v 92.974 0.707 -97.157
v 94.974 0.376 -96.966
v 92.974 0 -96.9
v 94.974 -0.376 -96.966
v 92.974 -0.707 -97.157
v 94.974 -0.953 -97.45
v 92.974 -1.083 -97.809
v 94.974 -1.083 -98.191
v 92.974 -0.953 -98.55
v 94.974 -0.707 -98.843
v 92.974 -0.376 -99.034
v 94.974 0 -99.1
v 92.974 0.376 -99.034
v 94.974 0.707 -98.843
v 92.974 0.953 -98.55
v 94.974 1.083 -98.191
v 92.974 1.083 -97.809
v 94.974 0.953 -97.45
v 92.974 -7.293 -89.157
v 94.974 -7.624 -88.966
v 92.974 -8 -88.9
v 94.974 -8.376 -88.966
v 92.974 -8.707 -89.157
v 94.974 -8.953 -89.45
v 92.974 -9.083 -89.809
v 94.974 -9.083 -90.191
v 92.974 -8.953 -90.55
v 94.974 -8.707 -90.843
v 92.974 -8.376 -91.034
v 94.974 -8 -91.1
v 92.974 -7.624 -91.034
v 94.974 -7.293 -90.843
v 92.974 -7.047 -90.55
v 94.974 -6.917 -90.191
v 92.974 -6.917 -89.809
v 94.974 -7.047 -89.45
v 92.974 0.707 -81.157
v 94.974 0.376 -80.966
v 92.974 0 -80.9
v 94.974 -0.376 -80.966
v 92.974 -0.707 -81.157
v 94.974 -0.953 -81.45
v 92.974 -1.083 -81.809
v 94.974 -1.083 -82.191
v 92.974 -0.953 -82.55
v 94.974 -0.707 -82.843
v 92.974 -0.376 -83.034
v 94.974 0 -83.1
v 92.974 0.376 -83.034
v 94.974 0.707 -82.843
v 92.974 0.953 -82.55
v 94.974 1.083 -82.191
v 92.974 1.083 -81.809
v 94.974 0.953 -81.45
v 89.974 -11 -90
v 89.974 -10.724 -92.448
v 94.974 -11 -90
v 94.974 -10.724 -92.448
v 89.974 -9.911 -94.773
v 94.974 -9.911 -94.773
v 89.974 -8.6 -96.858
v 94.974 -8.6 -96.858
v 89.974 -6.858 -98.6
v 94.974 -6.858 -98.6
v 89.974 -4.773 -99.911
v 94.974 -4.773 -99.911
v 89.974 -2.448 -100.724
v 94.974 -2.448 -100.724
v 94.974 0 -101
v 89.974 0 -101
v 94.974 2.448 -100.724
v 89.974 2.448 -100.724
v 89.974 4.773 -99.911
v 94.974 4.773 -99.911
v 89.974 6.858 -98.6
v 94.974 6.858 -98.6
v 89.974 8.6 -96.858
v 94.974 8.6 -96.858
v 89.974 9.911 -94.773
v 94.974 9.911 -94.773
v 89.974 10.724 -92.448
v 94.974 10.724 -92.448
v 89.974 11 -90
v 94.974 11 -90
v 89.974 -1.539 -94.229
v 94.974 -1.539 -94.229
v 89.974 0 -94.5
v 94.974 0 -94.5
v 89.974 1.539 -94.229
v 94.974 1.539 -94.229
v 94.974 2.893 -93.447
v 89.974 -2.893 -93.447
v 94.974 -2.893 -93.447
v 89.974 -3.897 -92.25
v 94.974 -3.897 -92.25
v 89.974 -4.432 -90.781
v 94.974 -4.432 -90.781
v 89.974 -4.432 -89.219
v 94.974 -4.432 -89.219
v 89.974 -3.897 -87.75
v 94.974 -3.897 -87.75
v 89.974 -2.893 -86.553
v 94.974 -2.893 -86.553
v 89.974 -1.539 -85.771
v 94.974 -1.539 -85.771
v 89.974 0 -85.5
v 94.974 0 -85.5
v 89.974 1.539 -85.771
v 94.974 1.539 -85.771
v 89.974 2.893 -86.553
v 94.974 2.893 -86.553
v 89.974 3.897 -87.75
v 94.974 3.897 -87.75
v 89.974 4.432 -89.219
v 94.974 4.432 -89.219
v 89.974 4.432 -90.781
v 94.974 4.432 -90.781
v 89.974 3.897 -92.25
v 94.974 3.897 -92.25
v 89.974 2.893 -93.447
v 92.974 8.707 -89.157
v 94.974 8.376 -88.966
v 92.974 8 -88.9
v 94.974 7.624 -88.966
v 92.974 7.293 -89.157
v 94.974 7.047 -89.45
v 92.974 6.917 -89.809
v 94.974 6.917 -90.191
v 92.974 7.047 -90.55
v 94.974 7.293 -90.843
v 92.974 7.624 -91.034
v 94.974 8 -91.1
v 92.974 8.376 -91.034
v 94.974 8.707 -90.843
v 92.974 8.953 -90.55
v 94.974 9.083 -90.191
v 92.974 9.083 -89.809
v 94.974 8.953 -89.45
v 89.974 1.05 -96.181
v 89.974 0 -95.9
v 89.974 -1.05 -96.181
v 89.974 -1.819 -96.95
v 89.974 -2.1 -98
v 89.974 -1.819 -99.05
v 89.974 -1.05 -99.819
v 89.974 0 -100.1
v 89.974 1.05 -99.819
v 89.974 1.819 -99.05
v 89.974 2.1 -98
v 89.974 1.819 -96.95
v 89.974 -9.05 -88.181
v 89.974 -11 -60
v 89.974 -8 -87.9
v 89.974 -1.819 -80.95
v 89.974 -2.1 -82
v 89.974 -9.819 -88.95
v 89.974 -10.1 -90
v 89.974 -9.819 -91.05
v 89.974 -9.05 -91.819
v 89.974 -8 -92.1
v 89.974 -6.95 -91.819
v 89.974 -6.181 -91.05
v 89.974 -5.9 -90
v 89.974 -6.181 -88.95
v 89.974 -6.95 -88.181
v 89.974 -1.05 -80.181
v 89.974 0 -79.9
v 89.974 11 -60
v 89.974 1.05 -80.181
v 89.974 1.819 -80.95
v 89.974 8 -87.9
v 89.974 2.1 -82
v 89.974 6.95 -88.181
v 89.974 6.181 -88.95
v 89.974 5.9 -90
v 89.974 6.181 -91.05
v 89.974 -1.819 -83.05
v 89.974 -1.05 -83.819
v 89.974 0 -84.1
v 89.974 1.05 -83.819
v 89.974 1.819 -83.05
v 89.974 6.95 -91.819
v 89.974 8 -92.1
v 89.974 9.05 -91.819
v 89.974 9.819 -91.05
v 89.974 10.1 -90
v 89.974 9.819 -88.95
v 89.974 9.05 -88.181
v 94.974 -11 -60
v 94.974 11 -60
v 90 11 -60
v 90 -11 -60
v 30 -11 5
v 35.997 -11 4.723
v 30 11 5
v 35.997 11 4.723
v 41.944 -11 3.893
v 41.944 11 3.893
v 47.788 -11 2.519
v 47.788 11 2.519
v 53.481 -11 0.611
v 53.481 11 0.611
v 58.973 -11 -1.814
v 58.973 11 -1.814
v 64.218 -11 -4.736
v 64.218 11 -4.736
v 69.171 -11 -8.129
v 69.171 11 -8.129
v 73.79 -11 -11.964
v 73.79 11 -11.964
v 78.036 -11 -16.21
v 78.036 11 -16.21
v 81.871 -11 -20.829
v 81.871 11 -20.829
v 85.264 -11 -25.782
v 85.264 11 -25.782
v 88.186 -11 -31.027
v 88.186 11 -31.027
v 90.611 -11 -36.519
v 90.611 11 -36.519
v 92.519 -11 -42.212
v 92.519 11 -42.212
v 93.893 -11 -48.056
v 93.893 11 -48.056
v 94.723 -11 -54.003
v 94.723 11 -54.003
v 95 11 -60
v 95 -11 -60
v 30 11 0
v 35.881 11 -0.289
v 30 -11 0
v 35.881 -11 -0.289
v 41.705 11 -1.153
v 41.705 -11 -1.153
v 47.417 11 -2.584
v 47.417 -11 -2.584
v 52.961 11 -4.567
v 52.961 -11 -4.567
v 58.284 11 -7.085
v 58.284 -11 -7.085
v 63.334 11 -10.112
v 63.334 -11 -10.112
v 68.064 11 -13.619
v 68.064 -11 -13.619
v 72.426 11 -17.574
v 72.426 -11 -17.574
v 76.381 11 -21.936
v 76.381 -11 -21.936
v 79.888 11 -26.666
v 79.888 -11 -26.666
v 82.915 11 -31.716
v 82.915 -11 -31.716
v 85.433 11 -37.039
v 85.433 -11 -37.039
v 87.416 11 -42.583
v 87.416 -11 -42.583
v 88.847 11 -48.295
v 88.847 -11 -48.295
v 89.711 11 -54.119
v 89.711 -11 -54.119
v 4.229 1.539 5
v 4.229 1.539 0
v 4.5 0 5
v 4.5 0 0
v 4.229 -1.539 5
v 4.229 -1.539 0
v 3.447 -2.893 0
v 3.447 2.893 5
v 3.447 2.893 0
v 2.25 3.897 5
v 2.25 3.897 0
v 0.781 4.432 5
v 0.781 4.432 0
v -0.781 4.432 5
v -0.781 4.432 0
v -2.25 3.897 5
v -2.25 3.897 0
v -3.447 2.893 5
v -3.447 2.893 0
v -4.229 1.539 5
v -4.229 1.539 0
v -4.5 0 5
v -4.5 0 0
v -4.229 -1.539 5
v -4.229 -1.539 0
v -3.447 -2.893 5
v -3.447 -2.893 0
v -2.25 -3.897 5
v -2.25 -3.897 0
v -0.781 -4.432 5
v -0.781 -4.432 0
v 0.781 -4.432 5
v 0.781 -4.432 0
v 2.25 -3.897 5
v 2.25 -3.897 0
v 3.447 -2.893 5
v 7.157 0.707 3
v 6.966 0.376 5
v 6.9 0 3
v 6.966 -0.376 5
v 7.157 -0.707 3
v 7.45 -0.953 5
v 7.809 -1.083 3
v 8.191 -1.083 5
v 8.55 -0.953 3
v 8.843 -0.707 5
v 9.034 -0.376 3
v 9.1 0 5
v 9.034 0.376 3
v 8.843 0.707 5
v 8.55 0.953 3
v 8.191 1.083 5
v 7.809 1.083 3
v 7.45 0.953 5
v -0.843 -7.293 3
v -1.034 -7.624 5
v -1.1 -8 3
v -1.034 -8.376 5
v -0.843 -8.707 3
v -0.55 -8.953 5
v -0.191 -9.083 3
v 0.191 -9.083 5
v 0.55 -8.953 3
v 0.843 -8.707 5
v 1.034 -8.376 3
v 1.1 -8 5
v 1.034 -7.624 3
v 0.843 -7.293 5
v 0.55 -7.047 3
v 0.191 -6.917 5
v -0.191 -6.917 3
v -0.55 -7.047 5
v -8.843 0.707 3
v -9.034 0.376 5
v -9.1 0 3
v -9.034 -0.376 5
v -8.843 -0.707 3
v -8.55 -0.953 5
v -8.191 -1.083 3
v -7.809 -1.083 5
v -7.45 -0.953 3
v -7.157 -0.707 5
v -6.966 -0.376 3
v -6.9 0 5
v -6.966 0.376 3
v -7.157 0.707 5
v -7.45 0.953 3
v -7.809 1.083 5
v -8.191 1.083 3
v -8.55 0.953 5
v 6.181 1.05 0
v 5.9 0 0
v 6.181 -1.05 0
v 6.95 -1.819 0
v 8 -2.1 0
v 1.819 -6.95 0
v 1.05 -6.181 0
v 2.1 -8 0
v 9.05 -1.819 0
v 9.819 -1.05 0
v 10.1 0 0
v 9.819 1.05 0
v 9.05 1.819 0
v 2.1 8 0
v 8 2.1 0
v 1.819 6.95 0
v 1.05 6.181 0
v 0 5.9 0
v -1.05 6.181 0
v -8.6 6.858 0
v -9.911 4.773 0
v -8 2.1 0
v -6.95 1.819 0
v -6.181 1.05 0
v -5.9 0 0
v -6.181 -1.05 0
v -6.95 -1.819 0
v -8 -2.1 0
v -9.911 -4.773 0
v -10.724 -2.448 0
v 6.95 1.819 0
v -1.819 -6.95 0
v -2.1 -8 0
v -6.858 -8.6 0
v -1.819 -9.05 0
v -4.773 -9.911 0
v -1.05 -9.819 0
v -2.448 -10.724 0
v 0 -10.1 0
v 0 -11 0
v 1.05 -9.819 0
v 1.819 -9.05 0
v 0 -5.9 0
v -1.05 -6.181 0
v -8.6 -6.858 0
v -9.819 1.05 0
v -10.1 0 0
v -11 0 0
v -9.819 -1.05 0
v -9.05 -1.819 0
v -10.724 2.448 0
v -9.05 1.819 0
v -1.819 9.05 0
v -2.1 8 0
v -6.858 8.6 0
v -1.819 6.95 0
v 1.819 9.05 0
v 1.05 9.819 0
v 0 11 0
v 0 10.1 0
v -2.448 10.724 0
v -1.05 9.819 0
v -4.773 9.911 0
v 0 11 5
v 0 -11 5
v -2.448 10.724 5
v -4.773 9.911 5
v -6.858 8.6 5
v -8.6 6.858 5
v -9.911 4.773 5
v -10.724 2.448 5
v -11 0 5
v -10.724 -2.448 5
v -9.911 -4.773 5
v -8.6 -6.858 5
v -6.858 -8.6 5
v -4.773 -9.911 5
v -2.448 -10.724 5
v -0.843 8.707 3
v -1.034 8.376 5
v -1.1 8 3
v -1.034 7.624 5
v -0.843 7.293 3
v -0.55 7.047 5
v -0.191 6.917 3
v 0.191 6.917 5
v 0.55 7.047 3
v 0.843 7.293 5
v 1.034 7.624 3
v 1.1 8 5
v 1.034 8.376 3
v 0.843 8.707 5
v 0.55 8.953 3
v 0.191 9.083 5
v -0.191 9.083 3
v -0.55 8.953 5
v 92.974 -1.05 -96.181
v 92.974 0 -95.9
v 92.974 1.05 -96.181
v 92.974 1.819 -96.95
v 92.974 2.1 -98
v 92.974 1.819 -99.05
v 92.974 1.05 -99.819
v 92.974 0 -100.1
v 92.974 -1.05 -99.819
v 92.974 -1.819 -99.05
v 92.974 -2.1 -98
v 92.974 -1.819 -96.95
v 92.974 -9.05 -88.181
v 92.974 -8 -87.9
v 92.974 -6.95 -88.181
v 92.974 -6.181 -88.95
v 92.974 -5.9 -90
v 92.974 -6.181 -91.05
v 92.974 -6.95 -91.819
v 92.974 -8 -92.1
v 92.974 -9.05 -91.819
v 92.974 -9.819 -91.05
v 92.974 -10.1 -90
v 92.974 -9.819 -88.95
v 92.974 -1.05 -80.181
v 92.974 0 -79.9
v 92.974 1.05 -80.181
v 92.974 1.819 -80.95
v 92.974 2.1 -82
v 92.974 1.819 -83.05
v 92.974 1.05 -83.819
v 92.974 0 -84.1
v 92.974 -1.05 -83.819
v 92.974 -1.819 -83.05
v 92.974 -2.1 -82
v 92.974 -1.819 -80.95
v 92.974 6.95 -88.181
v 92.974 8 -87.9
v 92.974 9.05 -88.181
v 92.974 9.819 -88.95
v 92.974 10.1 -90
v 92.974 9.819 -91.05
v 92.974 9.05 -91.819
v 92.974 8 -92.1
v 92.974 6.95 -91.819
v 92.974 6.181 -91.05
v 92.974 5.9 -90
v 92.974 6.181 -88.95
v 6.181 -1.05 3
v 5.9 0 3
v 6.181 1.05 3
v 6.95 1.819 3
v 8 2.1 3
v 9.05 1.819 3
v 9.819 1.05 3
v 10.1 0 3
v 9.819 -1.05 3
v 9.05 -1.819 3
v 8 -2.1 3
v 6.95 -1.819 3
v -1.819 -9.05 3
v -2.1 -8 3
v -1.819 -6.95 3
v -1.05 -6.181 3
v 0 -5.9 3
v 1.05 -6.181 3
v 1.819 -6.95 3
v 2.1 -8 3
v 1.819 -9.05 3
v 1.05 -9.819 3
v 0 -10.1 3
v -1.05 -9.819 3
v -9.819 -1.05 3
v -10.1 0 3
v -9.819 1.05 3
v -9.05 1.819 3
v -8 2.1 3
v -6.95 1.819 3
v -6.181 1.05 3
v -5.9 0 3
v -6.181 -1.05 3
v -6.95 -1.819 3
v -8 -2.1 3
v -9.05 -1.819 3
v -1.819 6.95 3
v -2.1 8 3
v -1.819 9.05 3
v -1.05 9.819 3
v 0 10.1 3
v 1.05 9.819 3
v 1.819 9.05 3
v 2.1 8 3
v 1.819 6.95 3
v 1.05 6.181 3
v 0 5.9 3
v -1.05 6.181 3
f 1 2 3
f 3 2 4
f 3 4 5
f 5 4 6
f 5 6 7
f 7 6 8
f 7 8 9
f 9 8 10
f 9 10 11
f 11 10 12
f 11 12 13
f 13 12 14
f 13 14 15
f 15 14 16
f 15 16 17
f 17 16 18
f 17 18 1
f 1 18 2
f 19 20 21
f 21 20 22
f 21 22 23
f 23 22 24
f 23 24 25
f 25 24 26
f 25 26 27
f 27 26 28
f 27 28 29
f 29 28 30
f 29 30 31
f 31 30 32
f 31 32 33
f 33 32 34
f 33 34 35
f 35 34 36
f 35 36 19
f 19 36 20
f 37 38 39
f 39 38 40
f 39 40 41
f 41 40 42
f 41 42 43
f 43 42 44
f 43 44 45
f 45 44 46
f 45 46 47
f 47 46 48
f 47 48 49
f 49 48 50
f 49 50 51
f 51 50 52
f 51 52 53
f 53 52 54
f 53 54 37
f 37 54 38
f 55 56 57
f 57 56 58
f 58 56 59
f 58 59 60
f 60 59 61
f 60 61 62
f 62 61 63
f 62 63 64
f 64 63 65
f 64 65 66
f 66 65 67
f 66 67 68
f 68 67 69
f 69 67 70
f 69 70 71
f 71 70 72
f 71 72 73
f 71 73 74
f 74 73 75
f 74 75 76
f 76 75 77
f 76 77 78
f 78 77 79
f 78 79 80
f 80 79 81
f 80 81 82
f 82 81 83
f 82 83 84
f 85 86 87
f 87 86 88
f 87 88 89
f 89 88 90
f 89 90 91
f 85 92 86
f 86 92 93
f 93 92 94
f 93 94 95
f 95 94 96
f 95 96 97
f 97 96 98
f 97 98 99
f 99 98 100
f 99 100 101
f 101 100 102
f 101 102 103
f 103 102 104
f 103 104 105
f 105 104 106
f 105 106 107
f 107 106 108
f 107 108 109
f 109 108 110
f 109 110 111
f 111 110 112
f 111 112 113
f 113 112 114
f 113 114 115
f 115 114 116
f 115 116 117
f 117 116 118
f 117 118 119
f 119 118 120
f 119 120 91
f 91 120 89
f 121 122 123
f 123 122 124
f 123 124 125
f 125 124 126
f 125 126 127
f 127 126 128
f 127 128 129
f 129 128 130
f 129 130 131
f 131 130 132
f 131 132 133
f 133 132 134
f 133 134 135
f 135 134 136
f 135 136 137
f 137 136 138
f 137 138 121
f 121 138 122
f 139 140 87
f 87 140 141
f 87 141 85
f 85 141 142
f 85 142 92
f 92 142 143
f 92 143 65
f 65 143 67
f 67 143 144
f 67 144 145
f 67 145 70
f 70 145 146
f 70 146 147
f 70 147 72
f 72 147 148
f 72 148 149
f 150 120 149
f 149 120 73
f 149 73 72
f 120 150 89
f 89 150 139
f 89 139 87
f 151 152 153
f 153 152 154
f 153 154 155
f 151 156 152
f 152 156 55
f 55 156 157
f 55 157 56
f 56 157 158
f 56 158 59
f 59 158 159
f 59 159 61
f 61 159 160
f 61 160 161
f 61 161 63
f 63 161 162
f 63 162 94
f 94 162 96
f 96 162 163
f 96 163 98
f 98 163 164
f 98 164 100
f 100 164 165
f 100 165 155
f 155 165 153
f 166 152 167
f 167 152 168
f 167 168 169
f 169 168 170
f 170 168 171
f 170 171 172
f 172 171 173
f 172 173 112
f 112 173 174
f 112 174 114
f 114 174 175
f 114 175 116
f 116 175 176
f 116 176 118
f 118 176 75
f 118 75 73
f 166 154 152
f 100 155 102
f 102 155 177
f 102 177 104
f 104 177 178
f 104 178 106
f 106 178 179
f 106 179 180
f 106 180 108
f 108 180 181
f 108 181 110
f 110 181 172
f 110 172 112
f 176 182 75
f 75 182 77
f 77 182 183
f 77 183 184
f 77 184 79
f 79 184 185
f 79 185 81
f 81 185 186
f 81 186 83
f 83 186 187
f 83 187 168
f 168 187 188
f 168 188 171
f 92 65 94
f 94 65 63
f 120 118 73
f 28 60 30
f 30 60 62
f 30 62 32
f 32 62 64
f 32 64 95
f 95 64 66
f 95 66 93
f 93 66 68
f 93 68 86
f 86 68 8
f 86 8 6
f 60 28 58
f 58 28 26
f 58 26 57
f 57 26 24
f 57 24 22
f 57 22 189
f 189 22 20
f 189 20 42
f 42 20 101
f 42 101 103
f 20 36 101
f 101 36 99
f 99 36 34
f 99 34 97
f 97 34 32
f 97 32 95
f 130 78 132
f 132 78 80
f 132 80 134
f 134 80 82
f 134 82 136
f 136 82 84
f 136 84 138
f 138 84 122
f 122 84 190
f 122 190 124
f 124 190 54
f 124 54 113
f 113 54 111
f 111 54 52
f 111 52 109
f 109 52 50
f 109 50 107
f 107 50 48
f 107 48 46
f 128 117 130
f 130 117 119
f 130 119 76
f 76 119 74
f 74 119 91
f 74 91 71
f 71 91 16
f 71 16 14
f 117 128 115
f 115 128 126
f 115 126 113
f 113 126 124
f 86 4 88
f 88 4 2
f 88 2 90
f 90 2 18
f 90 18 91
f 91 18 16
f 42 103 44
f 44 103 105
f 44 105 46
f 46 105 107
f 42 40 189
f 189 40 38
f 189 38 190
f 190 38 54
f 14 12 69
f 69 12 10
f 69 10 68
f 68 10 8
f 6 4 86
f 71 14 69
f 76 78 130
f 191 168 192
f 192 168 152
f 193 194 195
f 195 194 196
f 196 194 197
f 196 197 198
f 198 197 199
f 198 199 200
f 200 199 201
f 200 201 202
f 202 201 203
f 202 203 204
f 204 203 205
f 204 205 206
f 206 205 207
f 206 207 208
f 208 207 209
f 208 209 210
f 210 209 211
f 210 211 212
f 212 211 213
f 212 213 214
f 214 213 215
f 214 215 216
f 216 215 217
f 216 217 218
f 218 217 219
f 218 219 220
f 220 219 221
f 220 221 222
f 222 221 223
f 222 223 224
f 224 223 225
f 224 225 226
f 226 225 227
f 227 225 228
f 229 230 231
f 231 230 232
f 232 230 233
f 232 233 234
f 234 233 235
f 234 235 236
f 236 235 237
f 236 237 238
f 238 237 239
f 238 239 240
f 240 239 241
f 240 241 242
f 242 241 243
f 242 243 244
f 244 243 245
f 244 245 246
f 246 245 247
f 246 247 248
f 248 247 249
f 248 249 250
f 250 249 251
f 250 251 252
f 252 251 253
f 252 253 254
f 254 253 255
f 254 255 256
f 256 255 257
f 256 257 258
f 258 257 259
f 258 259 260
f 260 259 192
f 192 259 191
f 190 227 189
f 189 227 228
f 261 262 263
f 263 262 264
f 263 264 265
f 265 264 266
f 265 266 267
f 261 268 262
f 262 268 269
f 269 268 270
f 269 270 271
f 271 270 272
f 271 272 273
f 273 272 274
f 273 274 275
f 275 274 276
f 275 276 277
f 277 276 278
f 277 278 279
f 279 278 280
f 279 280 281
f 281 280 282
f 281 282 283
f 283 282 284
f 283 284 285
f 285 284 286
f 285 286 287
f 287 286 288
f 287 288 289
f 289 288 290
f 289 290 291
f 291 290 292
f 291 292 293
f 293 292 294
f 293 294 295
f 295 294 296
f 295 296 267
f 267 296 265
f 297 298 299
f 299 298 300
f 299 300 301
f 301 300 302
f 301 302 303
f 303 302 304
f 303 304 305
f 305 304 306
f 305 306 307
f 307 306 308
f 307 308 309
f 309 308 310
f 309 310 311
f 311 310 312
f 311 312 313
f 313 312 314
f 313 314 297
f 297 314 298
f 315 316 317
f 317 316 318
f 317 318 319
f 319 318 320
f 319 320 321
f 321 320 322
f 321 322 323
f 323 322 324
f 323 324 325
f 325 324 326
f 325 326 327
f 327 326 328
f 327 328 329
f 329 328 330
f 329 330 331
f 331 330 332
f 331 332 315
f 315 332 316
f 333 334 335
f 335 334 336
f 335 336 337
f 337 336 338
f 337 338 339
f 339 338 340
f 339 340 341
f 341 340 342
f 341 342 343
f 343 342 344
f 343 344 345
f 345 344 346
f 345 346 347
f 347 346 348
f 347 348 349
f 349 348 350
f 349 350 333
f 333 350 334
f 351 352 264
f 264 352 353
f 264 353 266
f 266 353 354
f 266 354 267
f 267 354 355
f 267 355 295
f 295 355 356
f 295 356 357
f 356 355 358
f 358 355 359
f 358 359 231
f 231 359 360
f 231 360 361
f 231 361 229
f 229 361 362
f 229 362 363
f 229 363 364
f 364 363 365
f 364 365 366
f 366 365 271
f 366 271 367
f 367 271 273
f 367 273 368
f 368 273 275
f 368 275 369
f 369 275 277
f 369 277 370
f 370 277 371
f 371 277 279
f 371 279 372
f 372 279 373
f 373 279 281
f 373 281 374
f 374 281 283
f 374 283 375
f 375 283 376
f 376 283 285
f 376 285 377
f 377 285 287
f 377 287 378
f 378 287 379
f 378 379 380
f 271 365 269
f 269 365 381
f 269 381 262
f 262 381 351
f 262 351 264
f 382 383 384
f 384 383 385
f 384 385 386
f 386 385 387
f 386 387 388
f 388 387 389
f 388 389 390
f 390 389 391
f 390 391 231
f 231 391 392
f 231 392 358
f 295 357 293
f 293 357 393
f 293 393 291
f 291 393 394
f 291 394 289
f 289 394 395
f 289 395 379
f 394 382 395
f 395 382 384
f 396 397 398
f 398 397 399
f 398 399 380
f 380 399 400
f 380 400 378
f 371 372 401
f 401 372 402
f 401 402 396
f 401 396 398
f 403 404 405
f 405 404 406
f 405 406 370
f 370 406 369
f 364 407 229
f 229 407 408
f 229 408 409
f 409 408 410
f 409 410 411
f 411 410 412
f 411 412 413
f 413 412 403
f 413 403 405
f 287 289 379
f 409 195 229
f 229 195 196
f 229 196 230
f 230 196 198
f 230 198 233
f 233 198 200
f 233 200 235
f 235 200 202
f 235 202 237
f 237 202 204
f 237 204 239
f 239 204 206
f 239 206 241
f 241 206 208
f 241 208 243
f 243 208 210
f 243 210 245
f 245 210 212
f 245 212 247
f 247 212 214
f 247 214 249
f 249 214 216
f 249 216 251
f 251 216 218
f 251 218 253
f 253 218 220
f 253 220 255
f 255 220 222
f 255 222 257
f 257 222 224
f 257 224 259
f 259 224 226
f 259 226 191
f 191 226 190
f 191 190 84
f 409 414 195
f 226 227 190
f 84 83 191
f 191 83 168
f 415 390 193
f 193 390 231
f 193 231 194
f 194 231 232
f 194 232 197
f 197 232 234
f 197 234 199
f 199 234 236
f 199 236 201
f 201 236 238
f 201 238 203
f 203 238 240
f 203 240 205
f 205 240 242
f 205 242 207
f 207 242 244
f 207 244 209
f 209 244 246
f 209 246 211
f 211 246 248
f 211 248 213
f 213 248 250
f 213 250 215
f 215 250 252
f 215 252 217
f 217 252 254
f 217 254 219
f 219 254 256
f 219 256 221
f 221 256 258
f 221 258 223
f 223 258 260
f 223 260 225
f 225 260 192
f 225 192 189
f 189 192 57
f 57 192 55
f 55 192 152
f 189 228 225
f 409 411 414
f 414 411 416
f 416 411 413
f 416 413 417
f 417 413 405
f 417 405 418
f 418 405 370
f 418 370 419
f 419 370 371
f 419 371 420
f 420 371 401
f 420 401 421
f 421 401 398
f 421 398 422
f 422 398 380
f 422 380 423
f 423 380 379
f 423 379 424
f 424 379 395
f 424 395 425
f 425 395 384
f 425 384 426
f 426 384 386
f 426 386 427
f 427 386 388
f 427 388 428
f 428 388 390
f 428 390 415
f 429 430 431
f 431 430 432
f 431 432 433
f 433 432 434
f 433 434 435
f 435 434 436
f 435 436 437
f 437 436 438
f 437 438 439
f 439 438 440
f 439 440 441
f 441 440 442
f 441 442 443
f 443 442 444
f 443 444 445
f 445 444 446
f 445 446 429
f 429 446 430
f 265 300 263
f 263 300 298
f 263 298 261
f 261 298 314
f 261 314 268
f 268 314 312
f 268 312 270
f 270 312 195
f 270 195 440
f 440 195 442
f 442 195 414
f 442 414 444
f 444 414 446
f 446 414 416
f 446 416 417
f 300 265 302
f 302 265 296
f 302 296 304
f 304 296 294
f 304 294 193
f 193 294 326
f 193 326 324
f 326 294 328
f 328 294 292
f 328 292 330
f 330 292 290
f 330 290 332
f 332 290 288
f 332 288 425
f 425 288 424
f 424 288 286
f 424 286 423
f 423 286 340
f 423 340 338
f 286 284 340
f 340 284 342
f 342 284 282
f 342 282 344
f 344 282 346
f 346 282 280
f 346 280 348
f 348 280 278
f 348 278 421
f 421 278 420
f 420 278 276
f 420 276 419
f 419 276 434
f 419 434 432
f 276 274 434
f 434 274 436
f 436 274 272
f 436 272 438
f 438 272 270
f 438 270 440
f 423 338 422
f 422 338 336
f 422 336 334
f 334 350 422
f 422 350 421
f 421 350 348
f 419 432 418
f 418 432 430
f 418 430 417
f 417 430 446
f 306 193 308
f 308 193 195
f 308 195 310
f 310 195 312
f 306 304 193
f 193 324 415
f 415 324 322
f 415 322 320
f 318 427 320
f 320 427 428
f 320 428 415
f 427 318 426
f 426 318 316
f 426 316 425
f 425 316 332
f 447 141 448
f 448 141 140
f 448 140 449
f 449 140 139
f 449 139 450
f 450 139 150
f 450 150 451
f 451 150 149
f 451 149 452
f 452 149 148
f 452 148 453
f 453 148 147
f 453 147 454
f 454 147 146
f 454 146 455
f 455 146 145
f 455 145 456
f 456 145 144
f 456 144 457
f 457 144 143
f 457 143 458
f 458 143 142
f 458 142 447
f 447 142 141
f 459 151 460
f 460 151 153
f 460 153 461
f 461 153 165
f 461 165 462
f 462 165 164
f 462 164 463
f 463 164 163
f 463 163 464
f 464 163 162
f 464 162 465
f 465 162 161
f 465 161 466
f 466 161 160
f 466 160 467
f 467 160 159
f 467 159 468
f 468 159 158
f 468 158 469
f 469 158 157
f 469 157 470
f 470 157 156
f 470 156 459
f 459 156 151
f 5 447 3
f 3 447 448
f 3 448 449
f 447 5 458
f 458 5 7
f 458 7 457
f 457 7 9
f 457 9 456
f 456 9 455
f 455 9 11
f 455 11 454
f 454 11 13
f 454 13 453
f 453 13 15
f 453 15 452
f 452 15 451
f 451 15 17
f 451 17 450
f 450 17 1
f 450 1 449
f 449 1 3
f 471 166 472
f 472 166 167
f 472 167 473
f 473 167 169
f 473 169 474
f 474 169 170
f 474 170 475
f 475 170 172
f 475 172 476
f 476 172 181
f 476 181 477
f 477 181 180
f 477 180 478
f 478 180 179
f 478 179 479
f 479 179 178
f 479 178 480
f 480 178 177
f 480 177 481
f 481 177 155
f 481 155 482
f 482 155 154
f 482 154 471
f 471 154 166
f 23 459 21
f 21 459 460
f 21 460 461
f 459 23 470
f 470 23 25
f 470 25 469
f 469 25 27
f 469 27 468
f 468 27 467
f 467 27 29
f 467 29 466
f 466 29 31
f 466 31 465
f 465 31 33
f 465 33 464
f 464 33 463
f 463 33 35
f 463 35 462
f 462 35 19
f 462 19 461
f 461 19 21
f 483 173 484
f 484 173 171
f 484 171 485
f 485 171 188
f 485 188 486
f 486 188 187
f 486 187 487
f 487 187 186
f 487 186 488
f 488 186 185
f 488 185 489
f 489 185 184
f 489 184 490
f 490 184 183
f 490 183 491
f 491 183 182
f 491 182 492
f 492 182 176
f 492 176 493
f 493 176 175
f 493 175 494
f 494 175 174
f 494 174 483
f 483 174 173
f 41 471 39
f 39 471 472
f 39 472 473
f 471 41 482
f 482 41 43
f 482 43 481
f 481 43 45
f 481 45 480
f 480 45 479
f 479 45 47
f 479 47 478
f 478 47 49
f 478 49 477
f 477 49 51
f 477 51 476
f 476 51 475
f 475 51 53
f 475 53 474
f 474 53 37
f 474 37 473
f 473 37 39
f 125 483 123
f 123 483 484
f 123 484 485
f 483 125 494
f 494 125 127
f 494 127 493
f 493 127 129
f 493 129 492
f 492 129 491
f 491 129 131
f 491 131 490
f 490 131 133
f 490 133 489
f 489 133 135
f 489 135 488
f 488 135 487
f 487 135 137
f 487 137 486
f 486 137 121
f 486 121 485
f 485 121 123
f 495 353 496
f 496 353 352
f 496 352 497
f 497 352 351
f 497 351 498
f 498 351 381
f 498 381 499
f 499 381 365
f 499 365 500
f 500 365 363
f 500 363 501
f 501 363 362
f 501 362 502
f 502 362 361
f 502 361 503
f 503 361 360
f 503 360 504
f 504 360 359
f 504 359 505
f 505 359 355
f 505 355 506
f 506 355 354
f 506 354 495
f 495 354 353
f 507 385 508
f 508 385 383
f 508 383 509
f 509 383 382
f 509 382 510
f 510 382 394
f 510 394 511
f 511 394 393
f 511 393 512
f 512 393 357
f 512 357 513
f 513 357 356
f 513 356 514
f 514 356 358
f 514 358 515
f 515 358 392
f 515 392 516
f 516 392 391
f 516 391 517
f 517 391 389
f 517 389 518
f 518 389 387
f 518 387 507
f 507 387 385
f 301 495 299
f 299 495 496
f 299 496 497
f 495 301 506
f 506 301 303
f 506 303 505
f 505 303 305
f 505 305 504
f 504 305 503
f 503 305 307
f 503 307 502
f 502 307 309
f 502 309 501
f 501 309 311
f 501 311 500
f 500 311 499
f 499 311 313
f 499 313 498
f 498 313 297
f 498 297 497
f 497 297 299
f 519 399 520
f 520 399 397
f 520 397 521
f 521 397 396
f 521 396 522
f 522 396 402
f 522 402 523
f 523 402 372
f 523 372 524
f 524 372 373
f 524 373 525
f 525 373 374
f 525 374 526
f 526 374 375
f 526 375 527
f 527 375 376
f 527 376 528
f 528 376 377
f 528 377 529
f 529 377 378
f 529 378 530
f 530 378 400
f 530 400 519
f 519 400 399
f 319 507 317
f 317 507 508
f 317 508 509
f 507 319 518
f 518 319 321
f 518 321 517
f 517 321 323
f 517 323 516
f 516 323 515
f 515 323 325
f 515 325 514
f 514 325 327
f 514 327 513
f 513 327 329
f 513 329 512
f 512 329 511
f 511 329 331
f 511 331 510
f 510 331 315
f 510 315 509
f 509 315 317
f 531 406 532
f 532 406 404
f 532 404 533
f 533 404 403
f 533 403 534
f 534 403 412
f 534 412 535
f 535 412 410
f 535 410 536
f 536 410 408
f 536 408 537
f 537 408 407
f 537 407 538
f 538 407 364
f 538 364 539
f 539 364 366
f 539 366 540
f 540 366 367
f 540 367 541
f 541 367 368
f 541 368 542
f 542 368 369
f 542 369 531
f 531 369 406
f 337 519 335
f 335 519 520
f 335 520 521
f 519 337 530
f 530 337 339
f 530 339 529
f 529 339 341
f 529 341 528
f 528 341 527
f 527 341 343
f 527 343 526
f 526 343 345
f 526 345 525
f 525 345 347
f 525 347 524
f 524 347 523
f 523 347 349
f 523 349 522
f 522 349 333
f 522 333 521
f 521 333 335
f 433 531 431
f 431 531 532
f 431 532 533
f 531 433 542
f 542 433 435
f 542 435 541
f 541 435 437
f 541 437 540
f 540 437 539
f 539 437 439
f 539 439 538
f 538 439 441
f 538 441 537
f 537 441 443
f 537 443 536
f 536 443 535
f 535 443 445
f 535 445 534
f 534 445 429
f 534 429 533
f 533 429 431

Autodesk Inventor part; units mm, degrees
ref_plane "YZ Plane" through (0, 0, 0) normal (1, 0, 0) x (0, 1, 0)
ref_plane "XZ Plane" through (0, 0, 0) normal (0, 1, 0) x (-1, 0, 0)
ref_plane "XY Plane" through (0, 0, 0) normal (0, 0, 1) x (1, 0, 0)
sketch "스케치1" plane through (0, 0, 0) normal (0, 0, 1) x (1, 0, 0)
  circle A0 centre (0, 0) radius 11
  circle A1 centre (0, -8) radius 1.1
  circle A2 centre (0, 0) radius 11
  circle A3 centre (8, 0) radius 1.1
  circle A4 centre (0, 0) radius 11
  circle A5 centre (0, 8) radius 1.1
  circle A6 centre (0, 0) radius 11
  circle A7 centre (-8, 0) radius 1.1
  arc A8 (-11, 0) -> (11, 0) centre (0, 0) ccw
  circle A9 centre (0, 0) radius 4.5
  line L0 (0, 11) -> (30, 11)
  line L1 (30, 11) -> (30, -11)
  line L2 (30, -11) -> (0, -11)
  arc A10 (0, -11) -> (0, 11) centre (0, 0) ccw
  dimension "d2" = 2.2
  dimension "d3" = 360
  dimension "d4" = 9
  dimension "d5" = 30
extrude "돌출1" add sketch "스케치1" along normal blind 5
sketch "스케치7" plane through (30, -11, 0) normal (1, 0, 0) x (0, 0, -1)
  line L0 (0, 0) -> (-5, 0) projected
  line L1 (0, 22) -> (-5, 22) projected
  line L2 (0, 0) -> (-5, 0)
  line L3 (-5, 0) -> (-5, 22)
  line L4 (-5, 22) -> (0, 22)
  line L5 (0, 22) -> (0, 0)
  point P0 (0, 11)
sketch "스케치8" plane through (0, -11, 0) normal (0, -1, 0) x (1, 0, 0)
  line L0 (30, 0) -> (0, 0) projected
  arc A0 (70, -40) -> (30, 0) centre (30, -40) ccw
  line L1 (30, -40) -> (70, -40) construction
  line L2 (30, -40) -> (30, 0) construction
  arc A1 (90, -60) -> (30, 0) centre (30, -60) ccw
  line L3 (30, -60) -> (90, -60) construction
  line L4 (30, -60) -> (30, 0) construction
  dimension "d13" = 90
  dimension "d29" = 90
sweep "스윕2" add profiles "스케치7" path "스케치8" path curves A1
sketch "스케치9" plane through (75, -11, -60) normal (0, 0, -1) x (-1, 0, 0)
  line L0 (45, 0) -> (5, 0) projected
  line L1 (5, 22) -> (0, 22) projected
  line L2 (-14.9739, 0) -> (-19.9739, 0)
  line L3 (-19.9739, 0) -> (-19.9739, 22)
  line L4 (-19.9739, 22) -> (-14.9739, 22)
  line L5 (-14.9739, 22) -> (-14.9739, 0)
  point P0 (75, 11)
extrude "돌출3" add sketch "스케치9" along normal blind 30
sketch "스케치10" plane through (94.9739, -11, -40) normal (1, 0, 0) x (0, 0, -1)
  line L0 (50, 0) -> (50, 22) projected
  circle A0 centre (50, 11) radius 11
  circle A1 centre (50, 11) radius 4.5
  circle A2 centre (50, 3) radius 1.1
  circle A3 centre (58, 11) radius 1.1
  circle A4 centre (50, 19) radius 1.1
  circle A5 centre (42, 11) radius 1.1
  point P0 (-40, 11)
  dimension "d18" = 9
  dimension "d19" = 2.2
  dimension "d20" = 8
  dimension "d23" = 360
extrude "돌출4" add sketch "스케치10" against normal blind 5 contours A0 L0 A4 A1 A2 | L0 A2 A1 A4 A0
extrude "돌출5" cut sketch "스케치10" against normal blind 5 contours A2 L0 | L0 A2 | A4 L0 | L0 A4 | A1 L0 | L0 A1 | A5
sketch "스케치11" plane through (89.9739, -11, -60) normal (-1, 0, 0) x (0, 0, 1)
  circle A0 centre (-30, 3) radius 1.1 projected
  circle A1 centre (-30, 3) radius 2.1
  circle A2 centre (-22, 11) radius 1.1 projected
  circle A3 centre (-22, 11) radius 2.1
  circle A4 centre (-38, 11) radius 1.1 projected
  circle A5 centre (-38, 11) radius 2.1
  circle A6 centre (-30, 19) radius 1.1 projected
  circle A7 centre (-30, 19) radius 2.1
  point P0 (60, 11)
  dimension "d30" = 4.2
  dimension "d31" = 4.2
  dimension "d32" = 4.2
  dimension "d33" = 4.2
sketch "스케치12" plane through (0, 0, 0) normal (0, 0, -1) x (-1, 0, 0)
  circle A0 centre (0, -8) radius 1.1 projected
  circle A1 centre (0, -8) radius 2.1
  circle A2 centre (8, 0) radius 1.1 projected
  circle A3 centre (8, 0) radius 2.1
  circle A4 centre (-8, 0) radius 1.1 projected
  circle A5 centre (-8, 0) radius 2.1
  circle A6 centre (0, 8) radius 1.1 projected
  circle A7 centre (0, 8) radius 2.1
  point P0 (0, 0)
  dimension "d34" = 4.2
  dimension "d35" = 4.2
  dimension "d36" = 4.2
  dimension "d37" = 4.2
extrude "돌출6" cut sketch "스케치11" against normal blind 3
extrude "돌출7" cut sketch "스케치12" against normal blind 3
properties part number "shoulder2"
